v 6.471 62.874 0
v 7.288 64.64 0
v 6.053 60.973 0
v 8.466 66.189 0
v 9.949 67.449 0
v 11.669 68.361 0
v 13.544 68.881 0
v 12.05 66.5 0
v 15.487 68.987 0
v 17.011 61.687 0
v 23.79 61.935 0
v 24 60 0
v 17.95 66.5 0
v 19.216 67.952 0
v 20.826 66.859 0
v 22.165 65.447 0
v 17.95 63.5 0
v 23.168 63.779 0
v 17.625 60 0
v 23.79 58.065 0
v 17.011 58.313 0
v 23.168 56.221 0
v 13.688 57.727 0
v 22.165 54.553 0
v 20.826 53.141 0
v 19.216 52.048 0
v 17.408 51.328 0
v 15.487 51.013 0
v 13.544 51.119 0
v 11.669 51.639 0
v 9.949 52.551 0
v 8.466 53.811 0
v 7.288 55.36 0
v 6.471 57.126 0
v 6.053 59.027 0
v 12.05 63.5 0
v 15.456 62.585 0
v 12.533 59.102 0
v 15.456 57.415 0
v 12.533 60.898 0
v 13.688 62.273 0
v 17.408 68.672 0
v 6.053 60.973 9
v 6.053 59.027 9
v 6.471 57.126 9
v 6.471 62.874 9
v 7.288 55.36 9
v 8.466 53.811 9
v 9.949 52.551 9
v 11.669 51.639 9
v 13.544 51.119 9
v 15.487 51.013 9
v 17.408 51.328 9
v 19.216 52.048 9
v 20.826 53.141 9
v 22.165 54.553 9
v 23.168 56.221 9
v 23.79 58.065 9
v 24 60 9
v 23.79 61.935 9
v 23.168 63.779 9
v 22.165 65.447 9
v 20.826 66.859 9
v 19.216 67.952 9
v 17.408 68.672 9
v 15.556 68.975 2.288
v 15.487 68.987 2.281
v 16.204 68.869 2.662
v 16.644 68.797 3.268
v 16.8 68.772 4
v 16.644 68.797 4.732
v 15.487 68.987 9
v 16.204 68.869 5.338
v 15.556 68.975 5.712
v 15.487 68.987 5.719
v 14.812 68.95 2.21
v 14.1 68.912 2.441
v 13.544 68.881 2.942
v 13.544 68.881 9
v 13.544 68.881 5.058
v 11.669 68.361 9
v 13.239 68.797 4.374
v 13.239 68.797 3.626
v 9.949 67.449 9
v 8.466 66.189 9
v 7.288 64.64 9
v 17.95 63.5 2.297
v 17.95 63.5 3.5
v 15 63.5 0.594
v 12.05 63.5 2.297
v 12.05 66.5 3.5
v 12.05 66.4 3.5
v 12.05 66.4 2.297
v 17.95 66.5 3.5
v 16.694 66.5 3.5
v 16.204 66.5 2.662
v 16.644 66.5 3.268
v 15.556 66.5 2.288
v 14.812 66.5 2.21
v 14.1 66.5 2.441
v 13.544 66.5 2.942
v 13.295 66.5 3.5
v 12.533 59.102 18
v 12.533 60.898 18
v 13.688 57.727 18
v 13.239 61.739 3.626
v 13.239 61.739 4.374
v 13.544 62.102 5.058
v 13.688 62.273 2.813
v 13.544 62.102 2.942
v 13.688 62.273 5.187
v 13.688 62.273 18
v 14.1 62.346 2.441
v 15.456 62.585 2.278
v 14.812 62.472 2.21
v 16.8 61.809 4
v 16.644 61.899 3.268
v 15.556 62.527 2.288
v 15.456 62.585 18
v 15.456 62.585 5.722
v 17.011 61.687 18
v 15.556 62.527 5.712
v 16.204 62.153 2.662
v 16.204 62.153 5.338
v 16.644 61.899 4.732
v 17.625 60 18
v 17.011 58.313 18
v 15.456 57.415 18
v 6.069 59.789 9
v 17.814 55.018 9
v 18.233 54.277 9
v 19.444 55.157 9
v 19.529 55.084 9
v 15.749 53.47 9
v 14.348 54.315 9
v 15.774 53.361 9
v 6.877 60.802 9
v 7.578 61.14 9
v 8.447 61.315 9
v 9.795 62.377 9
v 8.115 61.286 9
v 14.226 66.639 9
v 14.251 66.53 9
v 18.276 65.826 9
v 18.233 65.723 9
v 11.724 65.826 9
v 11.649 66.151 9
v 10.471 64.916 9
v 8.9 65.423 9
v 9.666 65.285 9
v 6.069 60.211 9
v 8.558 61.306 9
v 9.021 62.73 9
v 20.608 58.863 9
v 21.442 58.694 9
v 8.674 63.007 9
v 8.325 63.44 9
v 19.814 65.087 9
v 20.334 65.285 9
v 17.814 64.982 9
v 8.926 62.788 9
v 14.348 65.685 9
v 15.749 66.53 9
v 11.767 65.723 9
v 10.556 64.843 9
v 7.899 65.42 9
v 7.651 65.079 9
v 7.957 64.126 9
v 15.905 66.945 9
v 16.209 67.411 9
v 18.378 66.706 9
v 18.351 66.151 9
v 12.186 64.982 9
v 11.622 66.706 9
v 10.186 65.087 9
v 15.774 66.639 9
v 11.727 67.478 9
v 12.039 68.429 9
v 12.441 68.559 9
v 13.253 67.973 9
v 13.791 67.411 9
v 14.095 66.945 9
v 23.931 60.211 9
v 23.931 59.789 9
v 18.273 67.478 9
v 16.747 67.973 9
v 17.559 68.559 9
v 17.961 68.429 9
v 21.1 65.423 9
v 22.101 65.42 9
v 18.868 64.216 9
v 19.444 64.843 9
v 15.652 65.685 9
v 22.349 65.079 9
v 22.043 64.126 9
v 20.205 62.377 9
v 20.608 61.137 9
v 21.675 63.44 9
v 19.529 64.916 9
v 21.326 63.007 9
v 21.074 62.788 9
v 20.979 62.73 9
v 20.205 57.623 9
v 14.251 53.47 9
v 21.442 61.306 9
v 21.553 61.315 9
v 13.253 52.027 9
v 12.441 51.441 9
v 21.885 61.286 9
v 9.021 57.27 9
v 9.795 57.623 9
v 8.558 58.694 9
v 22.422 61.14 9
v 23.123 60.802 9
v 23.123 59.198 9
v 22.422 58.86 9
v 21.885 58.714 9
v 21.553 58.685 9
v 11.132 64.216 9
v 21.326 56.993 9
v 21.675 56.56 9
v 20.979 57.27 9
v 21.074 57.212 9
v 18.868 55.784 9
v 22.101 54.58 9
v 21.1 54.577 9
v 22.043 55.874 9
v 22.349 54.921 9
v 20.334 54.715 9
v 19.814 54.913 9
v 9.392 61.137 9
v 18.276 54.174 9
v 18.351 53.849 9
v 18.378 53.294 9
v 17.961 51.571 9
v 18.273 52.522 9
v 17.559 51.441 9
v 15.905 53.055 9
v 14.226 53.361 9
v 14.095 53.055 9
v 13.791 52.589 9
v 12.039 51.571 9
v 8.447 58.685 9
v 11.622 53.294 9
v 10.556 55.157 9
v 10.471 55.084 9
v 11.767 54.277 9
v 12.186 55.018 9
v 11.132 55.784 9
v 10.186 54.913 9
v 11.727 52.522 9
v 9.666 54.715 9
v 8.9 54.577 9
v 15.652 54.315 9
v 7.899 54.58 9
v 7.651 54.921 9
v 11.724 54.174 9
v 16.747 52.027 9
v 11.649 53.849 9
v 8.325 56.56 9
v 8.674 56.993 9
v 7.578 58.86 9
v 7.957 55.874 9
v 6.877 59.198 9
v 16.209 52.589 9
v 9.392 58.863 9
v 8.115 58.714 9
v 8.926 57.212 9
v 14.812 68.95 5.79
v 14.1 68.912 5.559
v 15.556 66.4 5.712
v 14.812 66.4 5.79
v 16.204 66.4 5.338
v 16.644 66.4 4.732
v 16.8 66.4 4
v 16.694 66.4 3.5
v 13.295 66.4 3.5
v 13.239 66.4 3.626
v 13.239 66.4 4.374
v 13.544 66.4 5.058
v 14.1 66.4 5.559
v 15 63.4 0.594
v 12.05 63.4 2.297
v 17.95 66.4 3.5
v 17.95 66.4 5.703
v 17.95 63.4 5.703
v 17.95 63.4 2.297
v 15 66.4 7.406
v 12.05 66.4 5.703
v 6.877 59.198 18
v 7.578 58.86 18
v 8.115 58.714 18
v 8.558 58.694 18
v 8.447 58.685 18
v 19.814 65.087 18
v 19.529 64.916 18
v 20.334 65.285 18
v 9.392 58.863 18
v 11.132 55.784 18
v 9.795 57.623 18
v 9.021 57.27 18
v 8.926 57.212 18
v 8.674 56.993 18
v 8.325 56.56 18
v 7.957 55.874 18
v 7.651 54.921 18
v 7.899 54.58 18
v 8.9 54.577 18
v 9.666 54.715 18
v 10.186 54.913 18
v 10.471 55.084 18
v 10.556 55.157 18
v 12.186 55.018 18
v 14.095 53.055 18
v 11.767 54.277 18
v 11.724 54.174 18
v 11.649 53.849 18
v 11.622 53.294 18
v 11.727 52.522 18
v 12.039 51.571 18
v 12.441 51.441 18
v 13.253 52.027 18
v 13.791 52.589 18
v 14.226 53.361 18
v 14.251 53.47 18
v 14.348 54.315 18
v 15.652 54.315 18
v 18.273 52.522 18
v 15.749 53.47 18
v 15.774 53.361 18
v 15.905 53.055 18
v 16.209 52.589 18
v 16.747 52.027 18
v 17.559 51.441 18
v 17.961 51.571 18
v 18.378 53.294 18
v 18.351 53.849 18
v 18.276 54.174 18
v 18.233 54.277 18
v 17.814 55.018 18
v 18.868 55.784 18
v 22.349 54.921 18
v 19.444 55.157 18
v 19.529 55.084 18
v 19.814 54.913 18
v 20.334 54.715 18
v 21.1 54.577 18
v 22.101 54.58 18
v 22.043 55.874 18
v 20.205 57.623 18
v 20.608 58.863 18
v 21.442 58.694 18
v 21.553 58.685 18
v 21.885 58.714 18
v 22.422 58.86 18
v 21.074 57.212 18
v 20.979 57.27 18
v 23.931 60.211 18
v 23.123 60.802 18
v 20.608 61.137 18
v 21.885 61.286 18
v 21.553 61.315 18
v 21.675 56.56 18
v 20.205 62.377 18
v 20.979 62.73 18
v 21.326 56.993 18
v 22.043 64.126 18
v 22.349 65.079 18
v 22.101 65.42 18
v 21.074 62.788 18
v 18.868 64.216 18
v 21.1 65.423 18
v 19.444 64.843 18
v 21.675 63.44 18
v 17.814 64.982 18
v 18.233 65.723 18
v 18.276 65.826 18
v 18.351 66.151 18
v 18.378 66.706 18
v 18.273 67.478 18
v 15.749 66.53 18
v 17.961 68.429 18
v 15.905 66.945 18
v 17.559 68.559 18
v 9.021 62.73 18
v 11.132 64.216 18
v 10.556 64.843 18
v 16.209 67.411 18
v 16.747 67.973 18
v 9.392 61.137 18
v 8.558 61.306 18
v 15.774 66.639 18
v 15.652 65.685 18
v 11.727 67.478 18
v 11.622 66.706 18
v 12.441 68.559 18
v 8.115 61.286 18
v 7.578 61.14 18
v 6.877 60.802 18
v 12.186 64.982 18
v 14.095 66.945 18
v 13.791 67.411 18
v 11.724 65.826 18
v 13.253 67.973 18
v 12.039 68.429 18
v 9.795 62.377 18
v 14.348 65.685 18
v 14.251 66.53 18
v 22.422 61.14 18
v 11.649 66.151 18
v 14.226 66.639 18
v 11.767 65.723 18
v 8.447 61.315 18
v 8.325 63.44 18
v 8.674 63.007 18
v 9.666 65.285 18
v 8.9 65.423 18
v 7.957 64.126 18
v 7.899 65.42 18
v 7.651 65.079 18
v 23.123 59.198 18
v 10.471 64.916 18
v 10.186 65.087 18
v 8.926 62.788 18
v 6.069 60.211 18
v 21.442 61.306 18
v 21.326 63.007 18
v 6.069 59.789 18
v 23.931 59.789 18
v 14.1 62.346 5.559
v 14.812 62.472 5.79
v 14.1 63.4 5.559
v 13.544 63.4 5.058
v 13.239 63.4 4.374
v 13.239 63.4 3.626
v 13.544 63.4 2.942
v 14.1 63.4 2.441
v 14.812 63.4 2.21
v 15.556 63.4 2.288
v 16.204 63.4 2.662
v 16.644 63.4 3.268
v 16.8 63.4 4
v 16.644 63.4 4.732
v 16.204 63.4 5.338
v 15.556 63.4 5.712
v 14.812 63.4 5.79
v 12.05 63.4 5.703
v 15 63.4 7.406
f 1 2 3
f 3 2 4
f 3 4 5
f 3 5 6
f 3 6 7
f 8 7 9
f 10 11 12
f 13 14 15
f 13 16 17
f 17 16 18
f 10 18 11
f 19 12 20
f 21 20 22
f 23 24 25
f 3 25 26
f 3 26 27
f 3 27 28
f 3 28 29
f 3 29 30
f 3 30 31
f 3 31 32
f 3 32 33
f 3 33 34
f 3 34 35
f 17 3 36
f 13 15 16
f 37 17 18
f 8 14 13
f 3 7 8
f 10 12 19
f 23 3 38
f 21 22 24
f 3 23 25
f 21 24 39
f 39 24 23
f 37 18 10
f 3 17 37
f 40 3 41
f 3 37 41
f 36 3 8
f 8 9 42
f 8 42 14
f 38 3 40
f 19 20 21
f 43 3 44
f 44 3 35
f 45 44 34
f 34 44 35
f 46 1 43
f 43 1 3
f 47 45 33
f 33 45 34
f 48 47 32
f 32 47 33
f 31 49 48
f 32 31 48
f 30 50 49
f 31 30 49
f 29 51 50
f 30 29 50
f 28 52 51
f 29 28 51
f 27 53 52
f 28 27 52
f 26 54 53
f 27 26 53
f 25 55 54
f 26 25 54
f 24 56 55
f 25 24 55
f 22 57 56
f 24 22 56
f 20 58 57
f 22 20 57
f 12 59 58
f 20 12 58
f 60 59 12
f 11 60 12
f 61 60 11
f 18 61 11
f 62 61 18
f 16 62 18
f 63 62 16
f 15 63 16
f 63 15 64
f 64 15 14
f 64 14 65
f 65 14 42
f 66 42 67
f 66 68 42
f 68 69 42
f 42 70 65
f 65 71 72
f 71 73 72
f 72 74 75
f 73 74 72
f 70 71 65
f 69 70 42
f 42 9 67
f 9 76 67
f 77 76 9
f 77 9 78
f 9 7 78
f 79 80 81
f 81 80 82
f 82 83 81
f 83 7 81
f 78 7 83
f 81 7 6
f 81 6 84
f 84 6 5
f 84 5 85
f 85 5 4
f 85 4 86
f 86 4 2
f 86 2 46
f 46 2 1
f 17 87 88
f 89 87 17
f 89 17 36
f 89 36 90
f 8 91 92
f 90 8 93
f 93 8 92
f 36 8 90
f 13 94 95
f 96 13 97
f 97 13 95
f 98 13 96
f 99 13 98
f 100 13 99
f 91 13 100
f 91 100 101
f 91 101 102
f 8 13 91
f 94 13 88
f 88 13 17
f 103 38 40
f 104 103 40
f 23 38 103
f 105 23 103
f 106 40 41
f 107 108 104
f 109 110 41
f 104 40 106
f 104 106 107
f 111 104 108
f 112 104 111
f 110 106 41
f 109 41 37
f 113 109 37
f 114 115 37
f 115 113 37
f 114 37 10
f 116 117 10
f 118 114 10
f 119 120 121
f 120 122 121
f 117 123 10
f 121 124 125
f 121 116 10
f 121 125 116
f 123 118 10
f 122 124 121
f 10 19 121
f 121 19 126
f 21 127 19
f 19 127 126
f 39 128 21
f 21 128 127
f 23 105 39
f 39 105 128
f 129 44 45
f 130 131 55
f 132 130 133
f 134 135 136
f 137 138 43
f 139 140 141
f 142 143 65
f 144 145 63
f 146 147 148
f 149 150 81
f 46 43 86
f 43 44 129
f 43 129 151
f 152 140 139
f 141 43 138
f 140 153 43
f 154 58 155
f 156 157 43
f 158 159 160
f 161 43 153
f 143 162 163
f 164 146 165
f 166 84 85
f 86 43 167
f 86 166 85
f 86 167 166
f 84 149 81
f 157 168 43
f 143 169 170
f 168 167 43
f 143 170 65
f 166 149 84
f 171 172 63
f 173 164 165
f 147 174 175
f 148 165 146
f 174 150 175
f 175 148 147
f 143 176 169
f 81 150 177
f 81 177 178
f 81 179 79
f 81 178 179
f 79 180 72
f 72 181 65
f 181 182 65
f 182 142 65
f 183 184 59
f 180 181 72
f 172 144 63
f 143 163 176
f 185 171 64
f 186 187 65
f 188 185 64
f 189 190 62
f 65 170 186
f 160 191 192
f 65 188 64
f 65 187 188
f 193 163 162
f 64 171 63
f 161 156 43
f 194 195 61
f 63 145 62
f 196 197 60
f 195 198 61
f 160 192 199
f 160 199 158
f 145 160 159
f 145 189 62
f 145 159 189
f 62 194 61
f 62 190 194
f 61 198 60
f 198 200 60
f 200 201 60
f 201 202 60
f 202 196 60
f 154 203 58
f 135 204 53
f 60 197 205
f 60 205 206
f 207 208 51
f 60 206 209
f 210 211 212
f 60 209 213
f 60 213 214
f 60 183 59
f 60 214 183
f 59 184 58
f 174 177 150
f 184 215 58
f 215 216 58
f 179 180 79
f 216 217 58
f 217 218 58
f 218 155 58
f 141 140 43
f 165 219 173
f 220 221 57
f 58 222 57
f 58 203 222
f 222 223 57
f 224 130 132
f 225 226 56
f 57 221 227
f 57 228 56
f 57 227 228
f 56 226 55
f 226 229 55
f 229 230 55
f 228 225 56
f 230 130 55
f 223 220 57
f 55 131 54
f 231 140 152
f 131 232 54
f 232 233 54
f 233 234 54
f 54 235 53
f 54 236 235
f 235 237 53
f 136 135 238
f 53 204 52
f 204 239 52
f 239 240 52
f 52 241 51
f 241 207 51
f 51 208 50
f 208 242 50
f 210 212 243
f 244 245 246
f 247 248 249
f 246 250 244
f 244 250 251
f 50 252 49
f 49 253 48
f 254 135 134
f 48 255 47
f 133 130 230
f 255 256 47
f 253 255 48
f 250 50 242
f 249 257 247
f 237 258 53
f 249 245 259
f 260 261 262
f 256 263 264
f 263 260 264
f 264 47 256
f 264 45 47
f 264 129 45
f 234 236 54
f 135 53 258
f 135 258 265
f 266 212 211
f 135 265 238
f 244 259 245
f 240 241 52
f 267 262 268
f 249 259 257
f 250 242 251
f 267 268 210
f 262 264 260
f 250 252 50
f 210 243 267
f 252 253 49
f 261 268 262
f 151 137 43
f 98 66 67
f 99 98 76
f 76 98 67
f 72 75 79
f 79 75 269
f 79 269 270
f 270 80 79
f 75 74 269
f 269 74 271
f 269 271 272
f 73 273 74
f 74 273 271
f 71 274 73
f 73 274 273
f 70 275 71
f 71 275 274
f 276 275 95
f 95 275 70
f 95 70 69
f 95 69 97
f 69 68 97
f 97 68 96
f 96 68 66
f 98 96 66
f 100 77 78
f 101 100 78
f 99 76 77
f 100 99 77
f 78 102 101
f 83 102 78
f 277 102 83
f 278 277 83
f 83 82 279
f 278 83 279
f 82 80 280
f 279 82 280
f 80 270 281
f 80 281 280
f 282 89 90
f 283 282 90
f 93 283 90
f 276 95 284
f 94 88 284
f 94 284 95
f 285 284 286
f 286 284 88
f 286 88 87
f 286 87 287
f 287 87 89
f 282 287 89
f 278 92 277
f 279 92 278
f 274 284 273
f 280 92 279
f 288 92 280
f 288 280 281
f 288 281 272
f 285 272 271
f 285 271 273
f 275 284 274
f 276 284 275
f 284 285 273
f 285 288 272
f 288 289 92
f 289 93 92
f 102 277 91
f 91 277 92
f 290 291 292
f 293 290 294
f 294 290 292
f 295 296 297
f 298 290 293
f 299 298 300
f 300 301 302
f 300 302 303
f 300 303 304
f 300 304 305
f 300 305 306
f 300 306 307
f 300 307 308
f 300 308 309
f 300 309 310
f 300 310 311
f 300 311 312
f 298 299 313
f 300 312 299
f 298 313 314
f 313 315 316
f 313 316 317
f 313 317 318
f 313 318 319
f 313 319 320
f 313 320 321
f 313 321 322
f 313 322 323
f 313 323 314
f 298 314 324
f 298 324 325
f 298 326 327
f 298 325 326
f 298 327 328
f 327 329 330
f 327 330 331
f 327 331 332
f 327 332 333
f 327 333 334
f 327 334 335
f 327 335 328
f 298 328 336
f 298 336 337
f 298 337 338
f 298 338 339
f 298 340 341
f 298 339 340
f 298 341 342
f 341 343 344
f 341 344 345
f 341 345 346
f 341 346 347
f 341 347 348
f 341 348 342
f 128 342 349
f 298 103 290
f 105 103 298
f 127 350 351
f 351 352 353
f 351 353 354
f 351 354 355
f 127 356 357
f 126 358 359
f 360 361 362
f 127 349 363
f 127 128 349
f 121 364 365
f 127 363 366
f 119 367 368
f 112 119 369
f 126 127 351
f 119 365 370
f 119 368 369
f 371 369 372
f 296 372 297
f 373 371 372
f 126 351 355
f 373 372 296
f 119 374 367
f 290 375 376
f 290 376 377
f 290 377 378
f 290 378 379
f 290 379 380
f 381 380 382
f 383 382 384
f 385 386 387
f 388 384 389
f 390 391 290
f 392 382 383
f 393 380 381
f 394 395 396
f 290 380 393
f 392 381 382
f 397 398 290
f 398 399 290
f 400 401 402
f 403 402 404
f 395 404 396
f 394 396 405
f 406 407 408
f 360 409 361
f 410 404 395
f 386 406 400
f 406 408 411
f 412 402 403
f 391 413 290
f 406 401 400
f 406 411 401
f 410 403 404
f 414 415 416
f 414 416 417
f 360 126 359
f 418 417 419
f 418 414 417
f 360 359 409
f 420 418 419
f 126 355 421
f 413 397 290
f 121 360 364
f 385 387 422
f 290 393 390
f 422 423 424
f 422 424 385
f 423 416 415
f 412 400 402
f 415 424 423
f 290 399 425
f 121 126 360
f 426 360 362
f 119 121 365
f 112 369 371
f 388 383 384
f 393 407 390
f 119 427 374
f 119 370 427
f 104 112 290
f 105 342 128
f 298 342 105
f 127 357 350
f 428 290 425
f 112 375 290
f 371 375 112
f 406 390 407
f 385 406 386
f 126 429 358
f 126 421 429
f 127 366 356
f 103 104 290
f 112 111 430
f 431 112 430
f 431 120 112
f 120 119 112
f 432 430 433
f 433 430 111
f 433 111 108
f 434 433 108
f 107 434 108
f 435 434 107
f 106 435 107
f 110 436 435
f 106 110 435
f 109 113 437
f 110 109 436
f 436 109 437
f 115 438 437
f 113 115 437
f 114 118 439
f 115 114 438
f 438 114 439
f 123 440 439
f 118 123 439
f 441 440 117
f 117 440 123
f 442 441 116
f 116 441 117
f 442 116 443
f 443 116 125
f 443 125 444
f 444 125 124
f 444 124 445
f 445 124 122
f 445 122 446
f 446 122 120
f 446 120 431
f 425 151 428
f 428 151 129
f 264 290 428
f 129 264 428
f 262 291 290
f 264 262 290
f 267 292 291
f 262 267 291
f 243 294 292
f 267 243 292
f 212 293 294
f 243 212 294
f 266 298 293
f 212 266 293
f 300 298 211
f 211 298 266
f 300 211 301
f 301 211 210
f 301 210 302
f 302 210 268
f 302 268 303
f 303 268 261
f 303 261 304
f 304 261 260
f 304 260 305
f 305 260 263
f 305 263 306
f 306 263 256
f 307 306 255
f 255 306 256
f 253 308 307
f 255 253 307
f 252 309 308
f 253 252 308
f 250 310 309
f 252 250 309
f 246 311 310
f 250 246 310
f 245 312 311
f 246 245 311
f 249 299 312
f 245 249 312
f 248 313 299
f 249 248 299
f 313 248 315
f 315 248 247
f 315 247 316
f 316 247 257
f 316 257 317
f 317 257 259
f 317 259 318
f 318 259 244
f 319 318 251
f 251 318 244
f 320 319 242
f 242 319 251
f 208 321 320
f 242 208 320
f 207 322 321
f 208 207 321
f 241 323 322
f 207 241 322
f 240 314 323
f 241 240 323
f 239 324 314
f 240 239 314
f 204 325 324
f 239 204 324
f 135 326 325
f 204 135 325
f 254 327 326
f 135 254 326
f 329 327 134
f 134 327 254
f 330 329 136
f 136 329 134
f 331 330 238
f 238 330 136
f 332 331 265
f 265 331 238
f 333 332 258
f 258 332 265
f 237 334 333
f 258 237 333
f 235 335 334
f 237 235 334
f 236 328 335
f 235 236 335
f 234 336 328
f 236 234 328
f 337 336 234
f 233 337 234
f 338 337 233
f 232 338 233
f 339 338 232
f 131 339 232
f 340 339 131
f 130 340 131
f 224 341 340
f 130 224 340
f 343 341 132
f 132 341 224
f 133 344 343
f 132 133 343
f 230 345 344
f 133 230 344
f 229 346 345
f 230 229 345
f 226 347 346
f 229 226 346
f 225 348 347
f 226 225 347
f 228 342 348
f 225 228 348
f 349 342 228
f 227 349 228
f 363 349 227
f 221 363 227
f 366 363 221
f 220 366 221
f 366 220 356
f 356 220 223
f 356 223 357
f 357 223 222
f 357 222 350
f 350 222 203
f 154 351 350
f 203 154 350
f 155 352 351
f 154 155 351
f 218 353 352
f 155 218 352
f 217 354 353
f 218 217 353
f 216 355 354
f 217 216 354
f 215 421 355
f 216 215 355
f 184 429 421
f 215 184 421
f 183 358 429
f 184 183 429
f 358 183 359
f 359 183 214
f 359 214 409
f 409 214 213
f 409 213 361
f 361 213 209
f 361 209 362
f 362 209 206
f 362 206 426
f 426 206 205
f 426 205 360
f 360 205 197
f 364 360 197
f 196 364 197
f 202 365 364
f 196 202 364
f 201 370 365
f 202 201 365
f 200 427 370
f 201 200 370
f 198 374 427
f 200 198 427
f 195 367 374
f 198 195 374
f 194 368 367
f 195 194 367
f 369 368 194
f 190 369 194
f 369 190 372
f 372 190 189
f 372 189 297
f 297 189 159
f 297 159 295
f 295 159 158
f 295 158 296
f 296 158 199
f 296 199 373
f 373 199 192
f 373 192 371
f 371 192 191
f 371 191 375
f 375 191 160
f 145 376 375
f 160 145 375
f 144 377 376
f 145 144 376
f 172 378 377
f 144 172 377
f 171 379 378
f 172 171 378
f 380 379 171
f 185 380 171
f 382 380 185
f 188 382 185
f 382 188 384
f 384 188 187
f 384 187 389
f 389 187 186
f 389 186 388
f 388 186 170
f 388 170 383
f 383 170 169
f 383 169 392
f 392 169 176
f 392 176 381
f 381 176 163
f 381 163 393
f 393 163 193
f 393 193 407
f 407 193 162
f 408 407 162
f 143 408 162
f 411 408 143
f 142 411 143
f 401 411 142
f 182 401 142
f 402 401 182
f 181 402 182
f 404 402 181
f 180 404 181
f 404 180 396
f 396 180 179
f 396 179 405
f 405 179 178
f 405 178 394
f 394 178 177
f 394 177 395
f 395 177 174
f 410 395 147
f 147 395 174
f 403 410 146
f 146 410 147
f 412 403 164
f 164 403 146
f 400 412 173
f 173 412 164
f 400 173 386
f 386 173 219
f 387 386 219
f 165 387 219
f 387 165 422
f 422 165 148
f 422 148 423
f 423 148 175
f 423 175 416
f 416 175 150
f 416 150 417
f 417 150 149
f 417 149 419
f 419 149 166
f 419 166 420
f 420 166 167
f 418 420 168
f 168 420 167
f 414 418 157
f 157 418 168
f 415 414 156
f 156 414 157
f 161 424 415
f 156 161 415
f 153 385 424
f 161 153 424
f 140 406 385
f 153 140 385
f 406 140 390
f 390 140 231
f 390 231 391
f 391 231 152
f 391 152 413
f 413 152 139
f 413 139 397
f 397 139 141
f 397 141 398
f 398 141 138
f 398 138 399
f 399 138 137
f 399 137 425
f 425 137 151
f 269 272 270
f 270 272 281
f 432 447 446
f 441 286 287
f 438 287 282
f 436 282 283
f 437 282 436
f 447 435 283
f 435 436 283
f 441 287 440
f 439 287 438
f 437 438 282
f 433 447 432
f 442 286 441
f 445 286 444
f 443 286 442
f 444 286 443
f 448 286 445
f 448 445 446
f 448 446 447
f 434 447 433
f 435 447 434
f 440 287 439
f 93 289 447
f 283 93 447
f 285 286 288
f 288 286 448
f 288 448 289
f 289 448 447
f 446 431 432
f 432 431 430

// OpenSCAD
// file: functions.scad
// PRUSA Mendel  
// Functions used in many files
// GNU GPL v2
// Josef Průša
// josefprusa@me.com
// prusadjs.cz
// http://www.reprap.org/wiki/Prusa_Mendel
// http://github.com/prusajr/PrusaMendel

module nut(d,h,horizontal=true){
cornerdiameter =  (d / 2) / cos (180 / 6);
cylinder(h = h, r = cornerdiameter, $fn = 6);
if(horizontal){
for(i = [1:6]){
	rotate([0,0,60*i]) translate([-cornerdiameter-0.2,0,0]) rotate([0,0,-45]) cube(size = [2,2,h]);
}}
}

// By nophead
module polyhole(d,h) {
    n = max(round(2 * d),3);
    rotate([0,0,180])
        cylinder(h = h, r = (d / 2) / cos (180 / n), $fn = n);
}




module roundcorner(diameter){
	difference(){
		cube(size = [diameter,diameter,99], center = false);
		translate(v = [diameter, diameter, 0]) cylinder(h = 100, r=diameter, center=true);
	}
}
// file: metric.scad
// PRUSA Mendel  
// Default metric sizes
// GNU GPL v3
// Josef Průša
// josefprusa@me.com
// prusadjs.cz
// http://www.reprap.org/wiki/Prusa_Mendel
// http://github.com/prusajr/PrusaMendel

// DONT CHANGE THIS FILE! ALTER VALUES IN CONFIGURATION.SCAD INSTEAD

// RODS

threaded_rod_diameter = 8.2;
threaded_rod_diameter_horizontal = 8.2;
smooth_bar_diameter = 8;
smooth_bar_diameter_horizontal = 8.5;

// Nuts and bolts

m8_diameter = 9;
m8_nut_diameter = 14.1;

m4_diameter = 4.5;
m4_nut_diameter = 9;

m3_diameter = 3.6;
m3_nut_diameter = 5.3;
m3_nut_diameter_horizontal = 6.1;

// Bushing holder

bushing_core_diameter = smooth_bar_diameter;
bushing_material_thickness = 1;

// Motors

motor_shaft = 5.5;
// file: configuration.scad
// PRUSA Mendel  
// Configuration file
// GNU GPL v3
// Josef Průša
// josefprusa@me.com
// prusadjs.cz
// http://www.reprap.org/wiki/Prusa_Mendel
// http://github.com/prusajr/PrusaMendel

// PLEASE SELECT ONE OF THE CONFIGURATIONS BELOW
// BY UN-COMMENTING IT

// Uncomment for metric settings
// METRIC METRIC METRIC METRIC METRIC METRIC METRIC METRIC 

include <metric.scad>;

// CUSTOM CUSTOM CUSTOM CUSTOM CUSTOM CUSTOM CUSTOM CUSTOM CUSTOM

thin_wall = 3;

// LM8UU
linear = true;


// CHANGE ONLY THE STUFF YOU KNOW
// IT WILL REPLACE DEFAULT SETTING

// RODS

// threaded_rod_diameter = 0;
// threaded_rod_diameter_horizontal = 0;
// smooth_bar_díameter = 0;
// smooth_bar_díameter_horizontal = 0;

// Nuts and bolts

// m8_diameter = 0;
// m8_nut_diameter = 0;

// m4_diameter = 0;
// m4_nut_diameter = 0;

// m3_diameter = 0;
// m3_nut_diameter = 0;

// Bushing holder

// bushing_core_diameter = smooth_bar_díameter;
// bushing_material_thickness = 0;


///counted stuff
m3_nut_diameter_bigger = ((m3_nut_diameter  / 2) / cos (180 / 6))*2;

// functions 
include <functions.scad>
// main file
// Greg's Wade Gears

// PRUSA Mendel 
// GNU GPL v3
// Josef Průša
// josefprusa@me.com
// prusadjs.cz
// http://www.reprap.org/wiki/Prusa_Mendel
// http://github.com/prusajr/PrusaMendel

include <configuration.scad>
use <inc/parametric_involute_gear_v5.0.scad>

translate([15,60,0]) 
WadesS(); //this module call will make the small gear


/**
 * @id small-gear
 * @name Small extruder gear
 * @category Printed
 * @using 1 m3nut
 * @using 1 m3xgrubscrew
 * @step Insert nut into cavity in printed gear.
 * @step Tighten the grub screw a bit, just to hold in place.
 */

module WadesS(){
	difference(){
translate([0,0,18]) mirror([ 0, 0, 1 ]) gear (number_of_teeth=10,
			circular_pitch=268,
			gear_thickness = 9,
			rim_thickness = 9,
			hub_thickness = 18,
			hub_diameter = 18,
			bore_diameter = 5.25,
			circles=0);
		translate([0,20,4])rotate([90,0,0])
	union()
	{
		//entrance
		translate([0,-3,15]) cube([m3_nut_diameter+0.6,5,3],center=true);
		//nut
		translate([0,0,13.6]) rotate([0,0,30]) nut(m3_nut_diameter+0.6, 3, false);
		//grub hole
		translate([0,0,9]) cylinder(r=m3_diameter/2,h=10, $fn=15);
	}
	}
}
